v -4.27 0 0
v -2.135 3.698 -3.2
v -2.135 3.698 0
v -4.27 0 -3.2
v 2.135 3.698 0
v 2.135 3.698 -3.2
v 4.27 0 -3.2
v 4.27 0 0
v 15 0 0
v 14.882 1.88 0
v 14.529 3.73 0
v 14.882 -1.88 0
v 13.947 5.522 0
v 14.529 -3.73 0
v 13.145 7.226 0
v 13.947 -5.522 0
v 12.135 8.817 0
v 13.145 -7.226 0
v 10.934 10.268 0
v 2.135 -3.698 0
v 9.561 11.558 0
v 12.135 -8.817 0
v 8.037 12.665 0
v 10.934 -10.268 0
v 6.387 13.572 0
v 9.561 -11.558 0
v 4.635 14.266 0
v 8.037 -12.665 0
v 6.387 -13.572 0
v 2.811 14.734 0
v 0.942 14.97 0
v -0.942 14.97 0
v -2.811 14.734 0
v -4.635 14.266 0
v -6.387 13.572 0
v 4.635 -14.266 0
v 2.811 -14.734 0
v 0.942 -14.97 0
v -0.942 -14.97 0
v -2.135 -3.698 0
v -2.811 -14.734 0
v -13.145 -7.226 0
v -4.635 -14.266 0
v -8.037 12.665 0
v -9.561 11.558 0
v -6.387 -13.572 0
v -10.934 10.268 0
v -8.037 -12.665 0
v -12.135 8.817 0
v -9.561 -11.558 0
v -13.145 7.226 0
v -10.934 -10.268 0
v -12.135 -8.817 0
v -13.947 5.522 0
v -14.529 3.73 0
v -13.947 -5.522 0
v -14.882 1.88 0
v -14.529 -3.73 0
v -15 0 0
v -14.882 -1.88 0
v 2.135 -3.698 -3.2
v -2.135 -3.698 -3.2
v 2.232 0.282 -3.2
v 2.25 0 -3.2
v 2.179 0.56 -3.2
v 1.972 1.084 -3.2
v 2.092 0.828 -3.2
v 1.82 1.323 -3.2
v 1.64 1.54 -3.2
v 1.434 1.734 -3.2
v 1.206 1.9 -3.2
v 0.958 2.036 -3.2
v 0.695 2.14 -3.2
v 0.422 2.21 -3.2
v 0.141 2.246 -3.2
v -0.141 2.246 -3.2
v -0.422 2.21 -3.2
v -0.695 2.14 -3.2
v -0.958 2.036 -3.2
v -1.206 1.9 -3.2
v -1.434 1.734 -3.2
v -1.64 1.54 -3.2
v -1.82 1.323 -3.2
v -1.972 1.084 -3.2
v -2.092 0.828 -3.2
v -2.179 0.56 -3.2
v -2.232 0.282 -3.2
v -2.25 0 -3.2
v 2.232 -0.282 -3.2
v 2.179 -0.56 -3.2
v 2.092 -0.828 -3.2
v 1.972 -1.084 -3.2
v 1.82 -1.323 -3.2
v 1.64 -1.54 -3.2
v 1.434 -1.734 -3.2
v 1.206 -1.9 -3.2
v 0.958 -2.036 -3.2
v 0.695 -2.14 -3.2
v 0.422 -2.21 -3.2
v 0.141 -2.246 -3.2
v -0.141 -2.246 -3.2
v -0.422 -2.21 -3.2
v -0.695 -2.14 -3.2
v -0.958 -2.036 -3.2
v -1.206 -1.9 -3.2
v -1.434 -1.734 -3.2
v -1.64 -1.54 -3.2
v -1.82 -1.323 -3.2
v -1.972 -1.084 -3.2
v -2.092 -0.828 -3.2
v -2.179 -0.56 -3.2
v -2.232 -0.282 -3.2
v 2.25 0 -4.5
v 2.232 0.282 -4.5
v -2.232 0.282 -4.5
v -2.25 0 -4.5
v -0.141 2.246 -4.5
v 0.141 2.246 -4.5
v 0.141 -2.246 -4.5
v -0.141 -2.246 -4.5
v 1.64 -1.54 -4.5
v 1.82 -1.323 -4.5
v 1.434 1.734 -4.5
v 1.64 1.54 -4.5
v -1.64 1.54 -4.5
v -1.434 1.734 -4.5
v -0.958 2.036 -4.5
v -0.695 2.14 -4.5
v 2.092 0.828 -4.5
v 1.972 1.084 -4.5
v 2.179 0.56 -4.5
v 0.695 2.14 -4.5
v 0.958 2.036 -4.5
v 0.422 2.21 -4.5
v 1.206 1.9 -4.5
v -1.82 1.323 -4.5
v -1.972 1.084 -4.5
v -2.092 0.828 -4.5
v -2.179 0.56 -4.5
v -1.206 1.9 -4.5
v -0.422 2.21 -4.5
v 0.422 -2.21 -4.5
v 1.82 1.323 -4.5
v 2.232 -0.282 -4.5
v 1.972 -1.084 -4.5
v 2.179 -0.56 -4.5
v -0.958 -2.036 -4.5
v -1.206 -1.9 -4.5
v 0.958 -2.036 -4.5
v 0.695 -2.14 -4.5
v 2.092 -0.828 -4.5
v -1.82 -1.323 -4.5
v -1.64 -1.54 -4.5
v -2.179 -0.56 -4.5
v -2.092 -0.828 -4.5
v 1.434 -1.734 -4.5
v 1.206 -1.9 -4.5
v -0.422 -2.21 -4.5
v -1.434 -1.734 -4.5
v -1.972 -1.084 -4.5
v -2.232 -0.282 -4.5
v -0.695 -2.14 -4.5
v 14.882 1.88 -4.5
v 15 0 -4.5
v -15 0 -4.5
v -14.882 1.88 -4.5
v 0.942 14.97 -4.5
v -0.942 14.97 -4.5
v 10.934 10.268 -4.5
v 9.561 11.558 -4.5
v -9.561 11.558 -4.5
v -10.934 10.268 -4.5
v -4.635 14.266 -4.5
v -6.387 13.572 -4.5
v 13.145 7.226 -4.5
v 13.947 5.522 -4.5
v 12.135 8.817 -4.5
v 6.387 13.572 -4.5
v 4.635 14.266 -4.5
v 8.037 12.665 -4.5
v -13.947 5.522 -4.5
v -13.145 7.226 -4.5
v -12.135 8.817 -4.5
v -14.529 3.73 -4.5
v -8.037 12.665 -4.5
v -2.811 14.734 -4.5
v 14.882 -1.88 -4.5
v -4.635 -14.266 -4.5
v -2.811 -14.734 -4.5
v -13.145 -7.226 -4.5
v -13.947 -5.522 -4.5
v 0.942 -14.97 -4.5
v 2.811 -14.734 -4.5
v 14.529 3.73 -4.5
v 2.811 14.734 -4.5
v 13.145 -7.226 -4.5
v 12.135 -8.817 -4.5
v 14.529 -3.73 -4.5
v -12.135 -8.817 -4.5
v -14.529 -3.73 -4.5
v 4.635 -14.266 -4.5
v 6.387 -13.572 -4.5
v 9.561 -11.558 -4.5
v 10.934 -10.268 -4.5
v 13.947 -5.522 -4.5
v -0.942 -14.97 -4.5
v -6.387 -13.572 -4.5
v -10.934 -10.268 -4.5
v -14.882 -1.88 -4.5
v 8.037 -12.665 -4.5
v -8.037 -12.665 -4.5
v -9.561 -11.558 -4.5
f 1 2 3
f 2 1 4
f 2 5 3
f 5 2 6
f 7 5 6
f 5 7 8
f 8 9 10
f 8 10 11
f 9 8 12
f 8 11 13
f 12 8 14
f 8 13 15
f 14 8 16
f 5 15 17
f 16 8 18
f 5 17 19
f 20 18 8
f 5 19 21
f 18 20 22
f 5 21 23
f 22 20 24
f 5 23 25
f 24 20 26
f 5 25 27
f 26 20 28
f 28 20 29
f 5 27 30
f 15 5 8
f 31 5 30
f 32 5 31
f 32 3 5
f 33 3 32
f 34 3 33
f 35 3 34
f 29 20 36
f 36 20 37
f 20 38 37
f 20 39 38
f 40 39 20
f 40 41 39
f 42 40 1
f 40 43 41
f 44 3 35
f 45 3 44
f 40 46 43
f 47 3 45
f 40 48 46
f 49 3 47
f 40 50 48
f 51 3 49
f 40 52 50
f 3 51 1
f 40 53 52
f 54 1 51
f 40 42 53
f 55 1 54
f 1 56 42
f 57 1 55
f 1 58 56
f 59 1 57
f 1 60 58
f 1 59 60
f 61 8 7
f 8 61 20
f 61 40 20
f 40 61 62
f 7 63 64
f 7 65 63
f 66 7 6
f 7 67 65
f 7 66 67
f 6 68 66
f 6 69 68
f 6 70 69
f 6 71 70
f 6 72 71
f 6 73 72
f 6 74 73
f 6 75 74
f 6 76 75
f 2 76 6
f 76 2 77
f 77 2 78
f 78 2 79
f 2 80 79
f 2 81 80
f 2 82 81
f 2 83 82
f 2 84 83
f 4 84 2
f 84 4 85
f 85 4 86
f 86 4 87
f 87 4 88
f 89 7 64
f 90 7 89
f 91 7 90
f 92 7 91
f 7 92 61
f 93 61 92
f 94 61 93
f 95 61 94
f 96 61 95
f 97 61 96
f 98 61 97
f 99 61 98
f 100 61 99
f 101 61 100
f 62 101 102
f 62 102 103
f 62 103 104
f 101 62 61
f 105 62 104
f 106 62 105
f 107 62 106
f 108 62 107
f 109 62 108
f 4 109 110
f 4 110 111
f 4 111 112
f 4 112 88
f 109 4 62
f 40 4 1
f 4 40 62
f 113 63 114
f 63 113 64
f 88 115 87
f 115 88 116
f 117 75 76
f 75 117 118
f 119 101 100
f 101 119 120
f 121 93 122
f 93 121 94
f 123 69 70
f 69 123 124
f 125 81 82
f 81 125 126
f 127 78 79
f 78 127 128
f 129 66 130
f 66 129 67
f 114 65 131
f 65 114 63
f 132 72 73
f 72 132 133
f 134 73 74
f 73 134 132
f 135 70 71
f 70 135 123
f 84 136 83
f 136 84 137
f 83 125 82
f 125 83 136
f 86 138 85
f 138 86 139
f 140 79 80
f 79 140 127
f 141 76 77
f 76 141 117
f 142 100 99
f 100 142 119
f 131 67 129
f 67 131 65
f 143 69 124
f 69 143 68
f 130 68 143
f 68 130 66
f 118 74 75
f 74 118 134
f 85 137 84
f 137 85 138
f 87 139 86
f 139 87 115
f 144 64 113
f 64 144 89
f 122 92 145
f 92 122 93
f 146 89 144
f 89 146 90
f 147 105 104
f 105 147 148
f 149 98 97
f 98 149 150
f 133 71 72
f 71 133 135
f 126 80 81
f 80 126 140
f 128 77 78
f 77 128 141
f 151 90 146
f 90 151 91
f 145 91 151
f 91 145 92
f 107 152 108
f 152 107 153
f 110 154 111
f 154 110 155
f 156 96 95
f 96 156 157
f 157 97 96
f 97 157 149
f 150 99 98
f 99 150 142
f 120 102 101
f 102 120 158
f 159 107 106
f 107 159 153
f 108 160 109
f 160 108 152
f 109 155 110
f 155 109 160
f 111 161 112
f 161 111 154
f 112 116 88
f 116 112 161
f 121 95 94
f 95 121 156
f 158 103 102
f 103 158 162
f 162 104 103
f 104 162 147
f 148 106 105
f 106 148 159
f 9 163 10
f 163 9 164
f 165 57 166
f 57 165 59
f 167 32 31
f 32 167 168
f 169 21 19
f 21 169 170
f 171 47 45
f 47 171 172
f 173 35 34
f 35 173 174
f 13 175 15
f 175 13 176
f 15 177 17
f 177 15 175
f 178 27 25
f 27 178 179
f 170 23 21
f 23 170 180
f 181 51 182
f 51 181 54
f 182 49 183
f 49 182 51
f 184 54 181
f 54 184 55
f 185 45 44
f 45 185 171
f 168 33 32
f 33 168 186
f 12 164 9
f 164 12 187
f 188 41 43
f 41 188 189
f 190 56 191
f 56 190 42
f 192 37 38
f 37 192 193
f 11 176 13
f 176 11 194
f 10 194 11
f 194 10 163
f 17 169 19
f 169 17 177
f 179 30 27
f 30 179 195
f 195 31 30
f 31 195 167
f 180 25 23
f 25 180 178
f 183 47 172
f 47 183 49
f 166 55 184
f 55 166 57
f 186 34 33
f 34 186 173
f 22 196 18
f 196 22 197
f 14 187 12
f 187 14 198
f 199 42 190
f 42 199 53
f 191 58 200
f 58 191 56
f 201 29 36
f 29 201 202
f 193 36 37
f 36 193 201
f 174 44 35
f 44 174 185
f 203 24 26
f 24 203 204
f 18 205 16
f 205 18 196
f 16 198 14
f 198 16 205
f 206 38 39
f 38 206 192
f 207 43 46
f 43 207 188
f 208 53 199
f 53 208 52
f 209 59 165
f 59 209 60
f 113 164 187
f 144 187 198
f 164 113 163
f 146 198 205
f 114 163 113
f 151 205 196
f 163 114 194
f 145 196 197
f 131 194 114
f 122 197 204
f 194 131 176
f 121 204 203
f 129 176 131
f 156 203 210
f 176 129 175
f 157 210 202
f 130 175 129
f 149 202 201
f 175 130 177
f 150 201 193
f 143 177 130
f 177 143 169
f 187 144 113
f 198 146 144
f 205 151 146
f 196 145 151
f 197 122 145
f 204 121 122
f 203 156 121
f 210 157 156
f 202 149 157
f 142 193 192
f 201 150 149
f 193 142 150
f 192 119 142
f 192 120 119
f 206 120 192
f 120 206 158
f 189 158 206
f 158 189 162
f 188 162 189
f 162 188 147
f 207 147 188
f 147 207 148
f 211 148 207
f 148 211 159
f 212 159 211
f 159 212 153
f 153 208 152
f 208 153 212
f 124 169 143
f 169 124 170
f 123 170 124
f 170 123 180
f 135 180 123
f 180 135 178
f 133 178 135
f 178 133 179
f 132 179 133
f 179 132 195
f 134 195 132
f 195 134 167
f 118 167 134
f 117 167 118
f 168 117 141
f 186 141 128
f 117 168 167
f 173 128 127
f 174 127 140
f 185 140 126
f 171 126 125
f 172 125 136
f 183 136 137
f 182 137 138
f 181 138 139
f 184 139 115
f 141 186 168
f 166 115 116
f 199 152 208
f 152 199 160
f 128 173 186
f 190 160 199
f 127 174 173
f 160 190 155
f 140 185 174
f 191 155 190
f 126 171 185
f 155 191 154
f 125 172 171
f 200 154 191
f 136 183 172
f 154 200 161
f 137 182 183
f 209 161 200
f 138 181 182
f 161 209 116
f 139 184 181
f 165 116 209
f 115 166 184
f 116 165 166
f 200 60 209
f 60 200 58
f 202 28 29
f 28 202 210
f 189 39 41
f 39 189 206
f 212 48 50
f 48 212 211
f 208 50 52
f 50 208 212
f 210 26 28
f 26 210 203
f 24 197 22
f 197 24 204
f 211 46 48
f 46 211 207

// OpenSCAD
$fn = 50;

difference() {
	union() {
		translate(v = [0, 0, -4.5]) {
			cylinder(h = 4.5, r = 15.0);
		}
	}
	union() {
		translate(v = [0, 0, 0]) {
			rotate(a = [0, 0, 0]) {
				difference() {
					union() {
						translate(v = [0, 0, -3.2]) {
							linear_extrude(height = 3.2) {
								polygon(points = [[4.2698, 0.0], [2.1349000000000005, 3.697755269078796], [-2.134899999999999, 3.6977552690787965], [-4.2698, 5.228996902999369e-16], [-2.134900000000002, -3.6977552690787956], [2.1348999999999974, -3.697755269078798]]);
							}
						}
					}
					union();
				}
			}
		}
		#translate(v = [0, 0, -100.0]) {
			cylinder(h = 200, r = 2.25);
		}
	}
}
